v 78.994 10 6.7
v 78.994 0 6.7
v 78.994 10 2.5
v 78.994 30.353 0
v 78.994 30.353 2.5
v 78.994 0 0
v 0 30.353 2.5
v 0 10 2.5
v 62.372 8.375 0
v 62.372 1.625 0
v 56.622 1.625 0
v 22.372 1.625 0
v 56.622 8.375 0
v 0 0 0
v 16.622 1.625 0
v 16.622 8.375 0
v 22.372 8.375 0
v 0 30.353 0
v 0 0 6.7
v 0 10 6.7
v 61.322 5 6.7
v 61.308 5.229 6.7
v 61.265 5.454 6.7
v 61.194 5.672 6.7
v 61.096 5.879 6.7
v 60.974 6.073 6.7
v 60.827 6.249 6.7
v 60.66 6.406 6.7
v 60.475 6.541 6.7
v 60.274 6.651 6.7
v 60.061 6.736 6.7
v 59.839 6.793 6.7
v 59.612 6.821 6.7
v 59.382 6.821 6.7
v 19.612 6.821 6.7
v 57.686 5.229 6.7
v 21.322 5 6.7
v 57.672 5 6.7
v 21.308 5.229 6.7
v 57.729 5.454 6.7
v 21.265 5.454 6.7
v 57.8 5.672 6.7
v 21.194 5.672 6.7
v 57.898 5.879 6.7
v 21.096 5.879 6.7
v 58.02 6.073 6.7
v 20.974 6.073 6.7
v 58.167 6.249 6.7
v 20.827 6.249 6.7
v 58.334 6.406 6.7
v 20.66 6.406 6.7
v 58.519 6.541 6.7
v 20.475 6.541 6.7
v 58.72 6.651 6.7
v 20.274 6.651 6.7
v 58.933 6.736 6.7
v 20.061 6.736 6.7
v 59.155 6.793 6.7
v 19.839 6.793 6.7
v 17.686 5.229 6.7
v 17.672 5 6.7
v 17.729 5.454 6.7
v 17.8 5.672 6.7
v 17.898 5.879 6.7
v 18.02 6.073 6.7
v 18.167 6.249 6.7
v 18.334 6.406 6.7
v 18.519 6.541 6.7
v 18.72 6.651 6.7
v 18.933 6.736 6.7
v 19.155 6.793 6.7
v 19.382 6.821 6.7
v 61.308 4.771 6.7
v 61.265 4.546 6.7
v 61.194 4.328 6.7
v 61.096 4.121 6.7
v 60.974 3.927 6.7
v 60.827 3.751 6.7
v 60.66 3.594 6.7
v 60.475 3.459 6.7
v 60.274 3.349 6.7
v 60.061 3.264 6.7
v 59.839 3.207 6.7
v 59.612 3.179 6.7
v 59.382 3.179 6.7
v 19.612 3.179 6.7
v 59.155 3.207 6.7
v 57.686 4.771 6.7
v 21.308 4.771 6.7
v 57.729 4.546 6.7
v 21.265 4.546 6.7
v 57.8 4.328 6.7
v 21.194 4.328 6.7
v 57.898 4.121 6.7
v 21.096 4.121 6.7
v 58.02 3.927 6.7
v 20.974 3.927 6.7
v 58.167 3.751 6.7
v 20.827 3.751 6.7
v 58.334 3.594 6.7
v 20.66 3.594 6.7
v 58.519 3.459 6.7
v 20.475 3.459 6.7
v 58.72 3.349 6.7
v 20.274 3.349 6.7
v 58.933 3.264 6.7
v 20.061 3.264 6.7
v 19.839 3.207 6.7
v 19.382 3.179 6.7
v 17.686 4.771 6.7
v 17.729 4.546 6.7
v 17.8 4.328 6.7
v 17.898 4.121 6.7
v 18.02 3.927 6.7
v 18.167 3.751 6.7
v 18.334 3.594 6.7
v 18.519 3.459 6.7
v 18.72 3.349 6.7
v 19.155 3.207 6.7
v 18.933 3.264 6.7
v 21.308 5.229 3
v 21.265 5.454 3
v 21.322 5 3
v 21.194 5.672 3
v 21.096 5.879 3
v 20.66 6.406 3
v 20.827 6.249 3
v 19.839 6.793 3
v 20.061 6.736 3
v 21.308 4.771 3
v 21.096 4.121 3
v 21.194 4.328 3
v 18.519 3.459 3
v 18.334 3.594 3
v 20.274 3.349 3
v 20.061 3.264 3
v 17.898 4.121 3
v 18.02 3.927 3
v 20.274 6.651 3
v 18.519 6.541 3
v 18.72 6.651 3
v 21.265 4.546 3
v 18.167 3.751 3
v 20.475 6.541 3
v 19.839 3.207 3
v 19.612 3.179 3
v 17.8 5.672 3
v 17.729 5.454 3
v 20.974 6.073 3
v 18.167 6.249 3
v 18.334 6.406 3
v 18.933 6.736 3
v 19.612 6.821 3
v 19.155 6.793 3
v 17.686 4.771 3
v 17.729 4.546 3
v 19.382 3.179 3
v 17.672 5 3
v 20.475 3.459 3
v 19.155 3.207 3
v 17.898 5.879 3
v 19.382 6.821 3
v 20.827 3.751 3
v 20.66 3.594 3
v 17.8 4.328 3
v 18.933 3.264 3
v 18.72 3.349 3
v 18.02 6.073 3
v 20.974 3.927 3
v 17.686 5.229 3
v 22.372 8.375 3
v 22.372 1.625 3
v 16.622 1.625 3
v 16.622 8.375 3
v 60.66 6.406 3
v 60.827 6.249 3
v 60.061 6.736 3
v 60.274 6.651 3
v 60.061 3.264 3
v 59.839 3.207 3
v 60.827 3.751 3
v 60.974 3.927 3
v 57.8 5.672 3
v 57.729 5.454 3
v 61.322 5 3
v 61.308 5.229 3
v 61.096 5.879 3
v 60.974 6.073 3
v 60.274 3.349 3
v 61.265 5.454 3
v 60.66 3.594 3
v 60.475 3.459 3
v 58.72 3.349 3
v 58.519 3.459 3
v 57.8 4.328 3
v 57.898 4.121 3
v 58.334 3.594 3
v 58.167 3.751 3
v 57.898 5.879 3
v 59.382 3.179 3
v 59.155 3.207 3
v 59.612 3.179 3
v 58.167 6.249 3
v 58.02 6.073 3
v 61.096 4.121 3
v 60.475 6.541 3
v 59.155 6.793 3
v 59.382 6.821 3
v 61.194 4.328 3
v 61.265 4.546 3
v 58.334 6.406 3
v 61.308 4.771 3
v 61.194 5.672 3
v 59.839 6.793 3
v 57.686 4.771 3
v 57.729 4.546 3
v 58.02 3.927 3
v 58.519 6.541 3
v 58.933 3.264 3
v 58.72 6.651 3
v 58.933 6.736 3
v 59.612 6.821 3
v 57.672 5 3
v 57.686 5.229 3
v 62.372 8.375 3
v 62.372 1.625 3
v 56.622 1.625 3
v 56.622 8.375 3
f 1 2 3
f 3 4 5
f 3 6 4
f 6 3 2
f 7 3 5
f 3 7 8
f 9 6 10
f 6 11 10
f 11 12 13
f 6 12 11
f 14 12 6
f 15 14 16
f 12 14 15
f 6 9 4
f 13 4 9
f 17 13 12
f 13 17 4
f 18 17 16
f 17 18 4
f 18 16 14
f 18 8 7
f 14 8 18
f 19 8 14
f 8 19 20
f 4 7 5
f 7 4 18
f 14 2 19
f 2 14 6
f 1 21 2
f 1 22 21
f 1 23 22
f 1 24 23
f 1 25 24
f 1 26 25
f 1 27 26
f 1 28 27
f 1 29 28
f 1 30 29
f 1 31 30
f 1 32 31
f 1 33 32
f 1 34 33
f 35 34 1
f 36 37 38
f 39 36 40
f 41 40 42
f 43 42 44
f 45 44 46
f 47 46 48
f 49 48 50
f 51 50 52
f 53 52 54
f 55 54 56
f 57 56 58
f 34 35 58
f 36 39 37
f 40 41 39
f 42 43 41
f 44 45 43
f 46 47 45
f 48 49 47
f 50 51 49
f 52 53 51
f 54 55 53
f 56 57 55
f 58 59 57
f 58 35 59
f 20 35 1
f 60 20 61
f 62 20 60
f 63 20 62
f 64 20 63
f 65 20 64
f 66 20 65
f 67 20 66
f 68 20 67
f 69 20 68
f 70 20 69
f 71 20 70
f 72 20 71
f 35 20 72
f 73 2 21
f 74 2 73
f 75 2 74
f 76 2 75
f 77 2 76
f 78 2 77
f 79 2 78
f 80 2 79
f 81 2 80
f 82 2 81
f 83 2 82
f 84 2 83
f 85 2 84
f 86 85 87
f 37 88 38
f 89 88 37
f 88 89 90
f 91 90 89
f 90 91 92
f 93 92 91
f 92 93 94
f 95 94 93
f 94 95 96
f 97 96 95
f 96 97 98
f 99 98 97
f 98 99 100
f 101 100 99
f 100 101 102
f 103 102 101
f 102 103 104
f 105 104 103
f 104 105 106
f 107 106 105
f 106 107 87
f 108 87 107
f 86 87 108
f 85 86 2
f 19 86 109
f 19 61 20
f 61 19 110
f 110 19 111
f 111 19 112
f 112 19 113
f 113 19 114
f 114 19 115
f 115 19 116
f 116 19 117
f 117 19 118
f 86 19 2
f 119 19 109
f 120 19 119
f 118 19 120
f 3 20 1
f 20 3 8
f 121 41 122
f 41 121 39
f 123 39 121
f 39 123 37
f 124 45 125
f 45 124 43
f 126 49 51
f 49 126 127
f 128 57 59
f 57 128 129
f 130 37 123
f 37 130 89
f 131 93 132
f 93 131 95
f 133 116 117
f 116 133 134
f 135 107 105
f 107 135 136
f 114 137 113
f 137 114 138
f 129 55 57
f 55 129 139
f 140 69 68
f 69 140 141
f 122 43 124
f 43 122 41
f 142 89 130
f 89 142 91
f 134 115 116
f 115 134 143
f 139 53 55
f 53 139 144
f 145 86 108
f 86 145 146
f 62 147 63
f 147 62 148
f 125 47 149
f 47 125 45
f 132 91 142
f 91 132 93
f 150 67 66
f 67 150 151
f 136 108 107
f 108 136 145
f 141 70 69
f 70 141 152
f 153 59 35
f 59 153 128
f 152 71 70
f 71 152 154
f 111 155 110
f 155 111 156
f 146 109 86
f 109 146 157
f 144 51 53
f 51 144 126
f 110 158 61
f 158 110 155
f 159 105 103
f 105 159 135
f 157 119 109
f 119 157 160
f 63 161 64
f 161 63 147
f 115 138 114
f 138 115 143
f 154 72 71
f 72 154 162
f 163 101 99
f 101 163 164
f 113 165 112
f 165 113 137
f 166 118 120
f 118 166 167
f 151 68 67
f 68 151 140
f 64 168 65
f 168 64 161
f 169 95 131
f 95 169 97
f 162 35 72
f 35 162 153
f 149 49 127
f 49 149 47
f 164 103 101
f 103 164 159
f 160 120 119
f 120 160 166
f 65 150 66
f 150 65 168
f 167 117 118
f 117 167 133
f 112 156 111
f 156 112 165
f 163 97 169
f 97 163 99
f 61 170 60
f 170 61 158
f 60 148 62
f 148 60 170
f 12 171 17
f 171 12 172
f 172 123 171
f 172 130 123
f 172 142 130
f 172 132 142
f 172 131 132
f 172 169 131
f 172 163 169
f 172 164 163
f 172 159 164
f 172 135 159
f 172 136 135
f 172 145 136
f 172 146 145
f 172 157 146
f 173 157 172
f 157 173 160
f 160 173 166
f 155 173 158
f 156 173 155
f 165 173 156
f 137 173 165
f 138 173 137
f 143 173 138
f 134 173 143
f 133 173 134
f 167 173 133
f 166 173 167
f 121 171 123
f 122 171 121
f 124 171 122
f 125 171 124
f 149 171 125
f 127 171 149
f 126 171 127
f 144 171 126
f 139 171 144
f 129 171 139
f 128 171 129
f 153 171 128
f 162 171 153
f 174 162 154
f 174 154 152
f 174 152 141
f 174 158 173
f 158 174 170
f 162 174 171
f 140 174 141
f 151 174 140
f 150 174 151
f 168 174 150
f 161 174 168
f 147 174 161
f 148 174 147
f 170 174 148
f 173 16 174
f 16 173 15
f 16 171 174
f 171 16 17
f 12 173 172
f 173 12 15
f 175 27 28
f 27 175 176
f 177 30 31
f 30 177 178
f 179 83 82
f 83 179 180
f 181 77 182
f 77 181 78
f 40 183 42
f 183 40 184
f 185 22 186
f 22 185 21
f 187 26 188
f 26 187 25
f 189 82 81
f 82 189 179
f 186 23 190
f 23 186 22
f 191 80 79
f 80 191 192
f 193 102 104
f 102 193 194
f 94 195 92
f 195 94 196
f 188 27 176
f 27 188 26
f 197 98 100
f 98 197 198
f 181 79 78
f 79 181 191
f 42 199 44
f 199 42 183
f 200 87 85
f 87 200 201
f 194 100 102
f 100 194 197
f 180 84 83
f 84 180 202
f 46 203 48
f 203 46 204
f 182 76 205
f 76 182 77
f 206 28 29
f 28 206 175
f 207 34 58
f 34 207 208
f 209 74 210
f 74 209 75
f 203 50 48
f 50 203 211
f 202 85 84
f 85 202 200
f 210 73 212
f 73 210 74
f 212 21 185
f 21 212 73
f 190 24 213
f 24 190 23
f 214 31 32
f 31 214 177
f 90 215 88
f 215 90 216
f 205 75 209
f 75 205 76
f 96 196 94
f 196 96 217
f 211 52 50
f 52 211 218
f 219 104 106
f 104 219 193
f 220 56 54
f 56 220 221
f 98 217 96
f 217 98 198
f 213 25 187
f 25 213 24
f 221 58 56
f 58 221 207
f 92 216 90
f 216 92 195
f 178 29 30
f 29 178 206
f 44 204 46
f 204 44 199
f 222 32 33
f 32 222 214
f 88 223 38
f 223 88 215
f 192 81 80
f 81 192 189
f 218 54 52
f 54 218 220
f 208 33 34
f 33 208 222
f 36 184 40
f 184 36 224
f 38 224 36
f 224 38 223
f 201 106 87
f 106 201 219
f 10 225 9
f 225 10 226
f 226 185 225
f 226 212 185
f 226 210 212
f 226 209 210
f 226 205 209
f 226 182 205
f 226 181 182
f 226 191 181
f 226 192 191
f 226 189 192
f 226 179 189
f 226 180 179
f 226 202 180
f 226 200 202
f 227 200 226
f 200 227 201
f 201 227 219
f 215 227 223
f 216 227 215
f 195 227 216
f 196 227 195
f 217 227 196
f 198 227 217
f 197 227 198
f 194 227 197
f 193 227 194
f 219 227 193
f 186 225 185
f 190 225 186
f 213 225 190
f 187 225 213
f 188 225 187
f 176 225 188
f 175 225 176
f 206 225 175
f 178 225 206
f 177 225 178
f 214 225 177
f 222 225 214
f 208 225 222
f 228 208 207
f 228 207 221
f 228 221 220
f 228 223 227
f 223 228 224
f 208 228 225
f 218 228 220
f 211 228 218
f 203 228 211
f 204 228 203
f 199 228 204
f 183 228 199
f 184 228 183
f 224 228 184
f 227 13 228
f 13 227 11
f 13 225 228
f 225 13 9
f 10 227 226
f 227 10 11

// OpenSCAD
$fn = 50;
pcb_width = 78.994;
pcb_height = 60.706;
housing_thickness = 2.5;
mounting_hole_inset = 3.302;
mounting_hole_keepout = 4;
mounting_hole_diameter = 3.25;
hole_tolerance = 0.2;
pcb_standoff = 2;
pcb_standoff_width = 1.5;
nut_width = 5.75;
nut_height = 6.75;
nut_depth = 3;

clip_gap = 5;
clip_hinge_thickness = 10;
clip_screw_separation = 40;

thickness_tolerance = 0.4;

difference()
{
    union()
    {
        cube([pcb_width, pcb_height/2, housing_thickness]);
        translate([0,0,housing_thickness]) cube([pcb_width, clip_hinge_thickness, clip_gap - 2*thickness_tolerance]);
    }
    translate([pcb_width/2-clip_screw_separation/2,clip_hinge_thickness/2,0])
    {
        cylinder(r=mounting_hole_diameter/2+hole_tolerance, h = clip_gap + housing_thickness);
        cube([nut_width, nut_height, nut_depth*2], center=true);
    }
    translate([pcb_width/2+clip_screw_separation/2,clip_hinge_thickness/2,0])
    {
        cylinder(r=mounting_hole_diameter/2+hole_tolerance, h = clip_gap + housing_thickness);
        cube([nut_width, nut_height, nut_depth*2], center=true);
    }
}
